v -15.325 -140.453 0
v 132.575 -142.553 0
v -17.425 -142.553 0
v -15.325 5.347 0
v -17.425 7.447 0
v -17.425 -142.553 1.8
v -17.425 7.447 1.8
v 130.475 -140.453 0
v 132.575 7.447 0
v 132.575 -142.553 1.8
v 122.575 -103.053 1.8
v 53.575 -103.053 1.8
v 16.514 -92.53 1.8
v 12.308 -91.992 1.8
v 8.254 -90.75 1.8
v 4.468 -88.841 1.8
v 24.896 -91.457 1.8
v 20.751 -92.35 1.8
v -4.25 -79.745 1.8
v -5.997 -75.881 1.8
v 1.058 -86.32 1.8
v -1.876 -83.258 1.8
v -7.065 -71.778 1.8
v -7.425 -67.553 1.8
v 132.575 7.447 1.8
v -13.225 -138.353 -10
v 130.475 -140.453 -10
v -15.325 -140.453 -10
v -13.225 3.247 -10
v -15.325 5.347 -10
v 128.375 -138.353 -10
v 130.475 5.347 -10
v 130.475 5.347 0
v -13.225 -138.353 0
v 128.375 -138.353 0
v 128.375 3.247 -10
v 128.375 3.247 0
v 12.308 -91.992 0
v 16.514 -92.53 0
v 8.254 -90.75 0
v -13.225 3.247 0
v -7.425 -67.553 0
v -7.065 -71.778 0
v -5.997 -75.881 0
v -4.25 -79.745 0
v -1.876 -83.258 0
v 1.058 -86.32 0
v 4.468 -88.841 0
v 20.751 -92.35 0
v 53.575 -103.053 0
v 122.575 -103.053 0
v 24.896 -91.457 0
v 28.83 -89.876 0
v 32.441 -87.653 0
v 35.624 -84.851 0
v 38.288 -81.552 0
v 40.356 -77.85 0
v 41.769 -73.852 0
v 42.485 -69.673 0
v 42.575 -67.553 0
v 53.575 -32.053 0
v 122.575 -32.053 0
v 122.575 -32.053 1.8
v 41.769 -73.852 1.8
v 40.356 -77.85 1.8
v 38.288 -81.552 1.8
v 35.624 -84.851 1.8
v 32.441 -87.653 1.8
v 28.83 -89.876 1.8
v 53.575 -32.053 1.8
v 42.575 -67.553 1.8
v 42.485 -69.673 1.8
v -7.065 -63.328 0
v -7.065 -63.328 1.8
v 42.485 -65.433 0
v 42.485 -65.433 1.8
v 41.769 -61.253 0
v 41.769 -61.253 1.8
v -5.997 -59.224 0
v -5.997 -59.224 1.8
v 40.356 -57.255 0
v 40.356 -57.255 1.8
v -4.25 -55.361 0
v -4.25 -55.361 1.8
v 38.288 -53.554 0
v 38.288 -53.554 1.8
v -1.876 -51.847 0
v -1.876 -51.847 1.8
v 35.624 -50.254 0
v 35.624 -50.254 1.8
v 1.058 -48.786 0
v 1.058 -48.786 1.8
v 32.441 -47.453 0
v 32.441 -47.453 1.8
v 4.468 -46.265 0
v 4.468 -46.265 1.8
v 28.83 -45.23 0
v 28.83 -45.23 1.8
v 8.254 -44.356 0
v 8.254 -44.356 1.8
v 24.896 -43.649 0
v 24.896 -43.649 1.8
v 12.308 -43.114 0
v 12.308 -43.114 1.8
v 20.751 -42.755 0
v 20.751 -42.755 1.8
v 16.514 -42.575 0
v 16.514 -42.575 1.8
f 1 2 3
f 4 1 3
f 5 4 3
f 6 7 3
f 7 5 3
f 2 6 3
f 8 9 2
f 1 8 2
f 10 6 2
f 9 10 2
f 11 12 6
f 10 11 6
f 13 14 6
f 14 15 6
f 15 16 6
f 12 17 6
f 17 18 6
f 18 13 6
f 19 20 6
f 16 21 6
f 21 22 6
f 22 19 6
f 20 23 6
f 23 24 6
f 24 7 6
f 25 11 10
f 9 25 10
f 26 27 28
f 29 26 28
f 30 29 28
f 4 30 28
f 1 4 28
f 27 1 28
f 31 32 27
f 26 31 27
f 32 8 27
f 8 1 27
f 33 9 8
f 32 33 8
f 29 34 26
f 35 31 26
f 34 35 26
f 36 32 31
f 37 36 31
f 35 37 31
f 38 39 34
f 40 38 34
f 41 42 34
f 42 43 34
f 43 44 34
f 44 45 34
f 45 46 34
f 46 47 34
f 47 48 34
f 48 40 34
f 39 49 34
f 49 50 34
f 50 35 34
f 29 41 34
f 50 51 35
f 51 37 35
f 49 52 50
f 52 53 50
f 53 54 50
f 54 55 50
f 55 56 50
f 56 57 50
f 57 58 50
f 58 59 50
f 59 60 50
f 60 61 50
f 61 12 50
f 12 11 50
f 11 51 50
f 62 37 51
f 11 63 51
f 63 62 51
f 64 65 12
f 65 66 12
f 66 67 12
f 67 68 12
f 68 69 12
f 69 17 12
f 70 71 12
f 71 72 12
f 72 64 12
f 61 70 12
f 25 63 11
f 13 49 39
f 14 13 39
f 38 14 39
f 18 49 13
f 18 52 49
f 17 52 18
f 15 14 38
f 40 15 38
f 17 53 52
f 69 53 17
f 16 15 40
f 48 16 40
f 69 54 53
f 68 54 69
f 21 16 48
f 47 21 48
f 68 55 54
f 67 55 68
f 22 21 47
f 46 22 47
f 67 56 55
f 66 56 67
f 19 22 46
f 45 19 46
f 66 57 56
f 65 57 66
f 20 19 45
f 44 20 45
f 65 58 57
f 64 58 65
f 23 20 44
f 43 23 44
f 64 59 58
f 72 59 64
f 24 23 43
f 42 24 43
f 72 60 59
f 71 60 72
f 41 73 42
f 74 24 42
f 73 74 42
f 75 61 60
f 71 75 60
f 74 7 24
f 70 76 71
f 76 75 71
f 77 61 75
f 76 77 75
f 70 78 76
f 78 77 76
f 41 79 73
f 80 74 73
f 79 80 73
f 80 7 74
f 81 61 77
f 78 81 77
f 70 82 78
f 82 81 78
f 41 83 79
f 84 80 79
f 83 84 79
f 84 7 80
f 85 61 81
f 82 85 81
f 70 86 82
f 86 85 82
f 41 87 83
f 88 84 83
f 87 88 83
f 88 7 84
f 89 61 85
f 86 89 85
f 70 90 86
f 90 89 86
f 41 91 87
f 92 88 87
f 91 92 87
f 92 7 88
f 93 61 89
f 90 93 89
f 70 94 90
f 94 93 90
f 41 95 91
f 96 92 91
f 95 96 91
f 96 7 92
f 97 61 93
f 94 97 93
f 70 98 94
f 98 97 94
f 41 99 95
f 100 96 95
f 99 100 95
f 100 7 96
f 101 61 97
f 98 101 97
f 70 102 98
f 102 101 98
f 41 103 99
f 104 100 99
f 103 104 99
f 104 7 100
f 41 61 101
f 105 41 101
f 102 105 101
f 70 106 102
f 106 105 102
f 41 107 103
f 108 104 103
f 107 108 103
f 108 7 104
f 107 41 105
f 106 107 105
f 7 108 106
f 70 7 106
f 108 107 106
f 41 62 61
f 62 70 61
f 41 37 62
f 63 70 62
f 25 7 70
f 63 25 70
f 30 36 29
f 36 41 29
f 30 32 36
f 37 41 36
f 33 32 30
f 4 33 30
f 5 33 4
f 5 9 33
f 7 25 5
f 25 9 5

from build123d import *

# Parameters (mm, degrees)
CROQUIS1_W              = 150
CROQUIS1_H              = 150
CROQUIS1_R              = 25
CROQUIS1_W_2            = 69
CROQUIS1_H_2            = 71
SALIENTE_EXTRUIR1_DEPTH = 1.8
CROQUIS2_W              = 145.8
CROQUIS2_H              = 145.8
CROQUIS2_W_2            = 141.6
CROQUIS2_H_2            = 141.6
SALIENTE_EXTRUIR2_DEPTH = 10


with BuildPart() as part:
    # Croquis1 → Saliente-Extruir1 (new body)
    with BuildSketch(Plane.XY):
        with Locations((57.57534771, -67.552941176)):
            Rectangle(CROQUIS1_W, CROQUIS1_H)
        with Locations((17.57534771, -67.552941176)):
            Circle(CROQUIS1_R, mode=Mode.SUBTRACT)
        with Locations((88.07534771, -67.552941176)):
            Rectangle(CROQUIS1_W_2, CROQUIS1_H_2, mode=Mode.SUBTRACT)
    extrude(amount=SALIENTE_EXTRUIR1_DEPTH)

    # Croquis2 → Saliente-Extruir2 (add)
    with BuildSketch(Plane(origin=(0, 0, 0), x_dir=(-1, 0, 0), z_dir=(0, 0, -1))):
        with Locations((-57.57534771, -67.552941176)):
            Rectangle(CROQUIS2_W, CROQUIS2_H)
        with Locations((-57.57534771, -67.552941176)):
            Rectangle(CROQUIS2_W_2, CROQUIS2_H_2, mode=Mode.SUBTRACT)
    extrude(amount=SALIENTE_EXTRUIR2_DEPTH)


solid = part.part
